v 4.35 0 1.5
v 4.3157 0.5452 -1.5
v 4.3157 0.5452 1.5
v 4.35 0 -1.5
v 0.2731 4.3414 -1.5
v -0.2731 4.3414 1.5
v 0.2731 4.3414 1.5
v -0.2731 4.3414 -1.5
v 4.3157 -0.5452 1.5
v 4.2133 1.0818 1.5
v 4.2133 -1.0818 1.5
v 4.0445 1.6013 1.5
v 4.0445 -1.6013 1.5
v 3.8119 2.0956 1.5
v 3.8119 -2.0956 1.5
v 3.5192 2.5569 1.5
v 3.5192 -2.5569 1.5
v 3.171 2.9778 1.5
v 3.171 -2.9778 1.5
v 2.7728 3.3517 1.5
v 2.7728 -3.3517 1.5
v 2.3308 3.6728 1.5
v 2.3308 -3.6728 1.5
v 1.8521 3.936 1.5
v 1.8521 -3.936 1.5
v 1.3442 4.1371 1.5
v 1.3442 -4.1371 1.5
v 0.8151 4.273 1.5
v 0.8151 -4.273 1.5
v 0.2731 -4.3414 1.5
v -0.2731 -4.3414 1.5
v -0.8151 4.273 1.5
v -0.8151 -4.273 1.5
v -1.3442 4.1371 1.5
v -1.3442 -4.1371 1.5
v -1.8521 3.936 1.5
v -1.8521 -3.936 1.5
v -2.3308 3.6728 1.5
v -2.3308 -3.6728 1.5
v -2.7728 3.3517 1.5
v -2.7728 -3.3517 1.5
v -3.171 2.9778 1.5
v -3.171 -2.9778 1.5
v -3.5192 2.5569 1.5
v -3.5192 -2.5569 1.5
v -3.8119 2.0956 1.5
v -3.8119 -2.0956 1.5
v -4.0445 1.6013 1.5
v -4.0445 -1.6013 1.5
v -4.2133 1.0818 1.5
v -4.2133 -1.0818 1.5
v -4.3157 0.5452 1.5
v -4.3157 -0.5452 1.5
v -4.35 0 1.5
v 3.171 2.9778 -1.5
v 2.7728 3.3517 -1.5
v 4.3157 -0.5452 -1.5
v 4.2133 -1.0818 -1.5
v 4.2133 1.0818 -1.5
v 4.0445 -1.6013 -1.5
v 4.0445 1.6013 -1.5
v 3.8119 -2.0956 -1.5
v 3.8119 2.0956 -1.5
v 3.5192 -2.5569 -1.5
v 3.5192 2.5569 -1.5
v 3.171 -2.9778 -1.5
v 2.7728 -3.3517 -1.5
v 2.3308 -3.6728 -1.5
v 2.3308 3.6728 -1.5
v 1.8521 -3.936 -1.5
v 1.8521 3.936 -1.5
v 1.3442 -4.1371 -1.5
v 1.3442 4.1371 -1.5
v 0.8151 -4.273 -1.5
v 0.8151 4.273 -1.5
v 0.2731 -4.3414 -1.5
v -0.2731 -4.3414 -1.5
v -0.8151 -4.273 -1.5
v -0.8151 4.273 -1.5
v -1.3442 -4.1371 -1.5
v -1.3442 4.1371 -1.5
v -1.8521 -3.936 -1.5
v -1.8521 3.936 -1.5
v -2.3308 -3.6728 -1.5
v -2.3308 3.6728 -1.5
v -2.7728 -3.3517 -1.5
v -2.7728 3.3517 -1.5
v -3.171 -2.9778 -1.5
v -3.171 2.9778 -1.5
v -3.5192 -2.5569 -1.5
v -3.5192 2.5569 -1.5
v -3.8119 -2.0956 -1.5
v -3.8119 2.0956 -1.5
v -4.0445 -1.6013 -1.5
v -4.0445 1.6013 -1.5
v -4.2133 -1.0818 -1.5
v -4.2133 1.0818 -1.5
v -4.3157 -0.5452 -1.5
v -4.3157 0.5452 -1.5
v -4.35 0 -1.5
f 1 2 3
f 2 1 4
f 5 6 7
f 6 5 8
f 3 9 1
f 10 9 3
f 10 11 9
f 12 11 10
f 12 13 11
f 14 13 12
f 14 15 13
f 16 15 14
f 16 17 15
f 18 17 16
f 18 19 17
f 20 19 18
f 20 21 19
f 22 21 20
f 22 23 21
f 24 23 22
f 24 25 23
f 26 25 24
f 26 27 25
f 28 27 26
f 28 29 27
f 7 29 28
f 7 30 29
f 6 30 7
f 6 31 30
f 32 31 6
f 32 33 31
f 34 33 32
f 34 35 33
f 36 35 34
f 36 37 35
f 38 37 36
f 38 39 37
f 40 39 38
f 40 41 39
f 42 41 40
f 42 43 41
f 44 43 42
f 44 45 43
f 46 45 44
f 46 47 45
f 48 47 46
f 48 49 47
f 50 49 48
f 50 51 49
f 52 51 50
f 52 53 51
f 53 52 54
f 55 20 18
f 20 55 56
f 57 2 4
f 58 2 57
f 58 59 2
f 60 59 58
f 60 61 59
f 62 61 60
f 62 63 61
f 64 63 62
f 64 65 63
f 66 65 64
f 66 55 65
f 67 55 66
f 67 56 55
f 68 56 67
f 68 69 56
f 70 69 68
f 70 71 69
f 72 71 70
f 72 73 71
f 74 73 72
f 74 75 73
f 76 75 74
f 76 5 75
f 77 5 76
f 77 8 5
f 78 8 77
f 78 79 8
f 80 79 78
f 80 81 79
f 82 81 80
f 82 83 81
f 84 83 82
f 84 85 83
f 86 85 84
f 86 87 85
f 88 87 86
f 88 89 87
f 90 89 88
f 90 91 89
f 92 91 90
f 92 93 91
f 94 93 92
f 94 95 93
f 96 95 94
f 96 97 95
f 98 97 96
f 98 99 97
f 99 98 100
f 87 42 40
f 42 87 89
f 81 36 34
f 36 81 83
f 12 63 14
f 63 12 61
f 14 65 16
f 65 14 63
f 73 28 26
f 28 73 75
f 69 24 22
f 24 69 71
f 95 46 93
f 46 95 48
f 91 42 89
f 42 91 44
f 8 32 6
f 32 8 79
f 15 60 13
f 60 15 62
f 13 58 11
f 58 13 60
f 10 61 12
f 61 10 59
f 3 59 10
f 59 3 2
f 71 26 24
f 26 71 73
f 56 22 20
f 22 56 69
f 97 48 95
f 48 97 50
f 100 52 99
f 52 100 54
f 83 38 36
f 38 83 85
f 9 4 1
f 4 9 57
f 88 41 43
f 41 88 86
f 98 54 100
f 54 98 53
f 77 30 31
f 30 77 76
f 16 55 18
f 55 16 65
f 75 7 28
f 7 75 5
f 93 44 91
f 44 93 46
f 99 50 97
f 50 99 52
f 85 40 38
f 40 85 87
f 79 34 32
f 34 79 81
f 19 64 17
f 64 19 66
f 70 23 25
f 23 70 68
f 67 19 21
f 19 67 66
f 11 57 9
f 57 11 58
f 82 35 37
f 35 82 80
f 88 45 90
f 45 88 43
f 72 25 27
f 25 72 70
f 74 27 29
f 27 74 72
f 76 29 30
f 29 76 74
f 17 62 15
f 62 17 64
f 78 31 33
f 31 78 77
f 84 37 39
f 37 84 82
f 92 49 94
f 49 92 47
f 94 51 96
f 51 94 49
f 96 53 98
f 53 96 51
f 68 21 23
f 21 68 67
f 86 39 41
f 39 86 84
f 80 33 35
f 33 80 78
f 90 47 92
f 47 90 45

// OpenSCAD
$fn = 50;


difference() {
	union() {
		translate(v = [0, 0, -1.5000000000]) {
			cylinder(h = 3, r = 4.3500000000);
		}
	}
	union() {
		translate(v = [0, 0, -100.0000000000]) {
			cylinder(h = 200, r = 0);
		}
	}
}
